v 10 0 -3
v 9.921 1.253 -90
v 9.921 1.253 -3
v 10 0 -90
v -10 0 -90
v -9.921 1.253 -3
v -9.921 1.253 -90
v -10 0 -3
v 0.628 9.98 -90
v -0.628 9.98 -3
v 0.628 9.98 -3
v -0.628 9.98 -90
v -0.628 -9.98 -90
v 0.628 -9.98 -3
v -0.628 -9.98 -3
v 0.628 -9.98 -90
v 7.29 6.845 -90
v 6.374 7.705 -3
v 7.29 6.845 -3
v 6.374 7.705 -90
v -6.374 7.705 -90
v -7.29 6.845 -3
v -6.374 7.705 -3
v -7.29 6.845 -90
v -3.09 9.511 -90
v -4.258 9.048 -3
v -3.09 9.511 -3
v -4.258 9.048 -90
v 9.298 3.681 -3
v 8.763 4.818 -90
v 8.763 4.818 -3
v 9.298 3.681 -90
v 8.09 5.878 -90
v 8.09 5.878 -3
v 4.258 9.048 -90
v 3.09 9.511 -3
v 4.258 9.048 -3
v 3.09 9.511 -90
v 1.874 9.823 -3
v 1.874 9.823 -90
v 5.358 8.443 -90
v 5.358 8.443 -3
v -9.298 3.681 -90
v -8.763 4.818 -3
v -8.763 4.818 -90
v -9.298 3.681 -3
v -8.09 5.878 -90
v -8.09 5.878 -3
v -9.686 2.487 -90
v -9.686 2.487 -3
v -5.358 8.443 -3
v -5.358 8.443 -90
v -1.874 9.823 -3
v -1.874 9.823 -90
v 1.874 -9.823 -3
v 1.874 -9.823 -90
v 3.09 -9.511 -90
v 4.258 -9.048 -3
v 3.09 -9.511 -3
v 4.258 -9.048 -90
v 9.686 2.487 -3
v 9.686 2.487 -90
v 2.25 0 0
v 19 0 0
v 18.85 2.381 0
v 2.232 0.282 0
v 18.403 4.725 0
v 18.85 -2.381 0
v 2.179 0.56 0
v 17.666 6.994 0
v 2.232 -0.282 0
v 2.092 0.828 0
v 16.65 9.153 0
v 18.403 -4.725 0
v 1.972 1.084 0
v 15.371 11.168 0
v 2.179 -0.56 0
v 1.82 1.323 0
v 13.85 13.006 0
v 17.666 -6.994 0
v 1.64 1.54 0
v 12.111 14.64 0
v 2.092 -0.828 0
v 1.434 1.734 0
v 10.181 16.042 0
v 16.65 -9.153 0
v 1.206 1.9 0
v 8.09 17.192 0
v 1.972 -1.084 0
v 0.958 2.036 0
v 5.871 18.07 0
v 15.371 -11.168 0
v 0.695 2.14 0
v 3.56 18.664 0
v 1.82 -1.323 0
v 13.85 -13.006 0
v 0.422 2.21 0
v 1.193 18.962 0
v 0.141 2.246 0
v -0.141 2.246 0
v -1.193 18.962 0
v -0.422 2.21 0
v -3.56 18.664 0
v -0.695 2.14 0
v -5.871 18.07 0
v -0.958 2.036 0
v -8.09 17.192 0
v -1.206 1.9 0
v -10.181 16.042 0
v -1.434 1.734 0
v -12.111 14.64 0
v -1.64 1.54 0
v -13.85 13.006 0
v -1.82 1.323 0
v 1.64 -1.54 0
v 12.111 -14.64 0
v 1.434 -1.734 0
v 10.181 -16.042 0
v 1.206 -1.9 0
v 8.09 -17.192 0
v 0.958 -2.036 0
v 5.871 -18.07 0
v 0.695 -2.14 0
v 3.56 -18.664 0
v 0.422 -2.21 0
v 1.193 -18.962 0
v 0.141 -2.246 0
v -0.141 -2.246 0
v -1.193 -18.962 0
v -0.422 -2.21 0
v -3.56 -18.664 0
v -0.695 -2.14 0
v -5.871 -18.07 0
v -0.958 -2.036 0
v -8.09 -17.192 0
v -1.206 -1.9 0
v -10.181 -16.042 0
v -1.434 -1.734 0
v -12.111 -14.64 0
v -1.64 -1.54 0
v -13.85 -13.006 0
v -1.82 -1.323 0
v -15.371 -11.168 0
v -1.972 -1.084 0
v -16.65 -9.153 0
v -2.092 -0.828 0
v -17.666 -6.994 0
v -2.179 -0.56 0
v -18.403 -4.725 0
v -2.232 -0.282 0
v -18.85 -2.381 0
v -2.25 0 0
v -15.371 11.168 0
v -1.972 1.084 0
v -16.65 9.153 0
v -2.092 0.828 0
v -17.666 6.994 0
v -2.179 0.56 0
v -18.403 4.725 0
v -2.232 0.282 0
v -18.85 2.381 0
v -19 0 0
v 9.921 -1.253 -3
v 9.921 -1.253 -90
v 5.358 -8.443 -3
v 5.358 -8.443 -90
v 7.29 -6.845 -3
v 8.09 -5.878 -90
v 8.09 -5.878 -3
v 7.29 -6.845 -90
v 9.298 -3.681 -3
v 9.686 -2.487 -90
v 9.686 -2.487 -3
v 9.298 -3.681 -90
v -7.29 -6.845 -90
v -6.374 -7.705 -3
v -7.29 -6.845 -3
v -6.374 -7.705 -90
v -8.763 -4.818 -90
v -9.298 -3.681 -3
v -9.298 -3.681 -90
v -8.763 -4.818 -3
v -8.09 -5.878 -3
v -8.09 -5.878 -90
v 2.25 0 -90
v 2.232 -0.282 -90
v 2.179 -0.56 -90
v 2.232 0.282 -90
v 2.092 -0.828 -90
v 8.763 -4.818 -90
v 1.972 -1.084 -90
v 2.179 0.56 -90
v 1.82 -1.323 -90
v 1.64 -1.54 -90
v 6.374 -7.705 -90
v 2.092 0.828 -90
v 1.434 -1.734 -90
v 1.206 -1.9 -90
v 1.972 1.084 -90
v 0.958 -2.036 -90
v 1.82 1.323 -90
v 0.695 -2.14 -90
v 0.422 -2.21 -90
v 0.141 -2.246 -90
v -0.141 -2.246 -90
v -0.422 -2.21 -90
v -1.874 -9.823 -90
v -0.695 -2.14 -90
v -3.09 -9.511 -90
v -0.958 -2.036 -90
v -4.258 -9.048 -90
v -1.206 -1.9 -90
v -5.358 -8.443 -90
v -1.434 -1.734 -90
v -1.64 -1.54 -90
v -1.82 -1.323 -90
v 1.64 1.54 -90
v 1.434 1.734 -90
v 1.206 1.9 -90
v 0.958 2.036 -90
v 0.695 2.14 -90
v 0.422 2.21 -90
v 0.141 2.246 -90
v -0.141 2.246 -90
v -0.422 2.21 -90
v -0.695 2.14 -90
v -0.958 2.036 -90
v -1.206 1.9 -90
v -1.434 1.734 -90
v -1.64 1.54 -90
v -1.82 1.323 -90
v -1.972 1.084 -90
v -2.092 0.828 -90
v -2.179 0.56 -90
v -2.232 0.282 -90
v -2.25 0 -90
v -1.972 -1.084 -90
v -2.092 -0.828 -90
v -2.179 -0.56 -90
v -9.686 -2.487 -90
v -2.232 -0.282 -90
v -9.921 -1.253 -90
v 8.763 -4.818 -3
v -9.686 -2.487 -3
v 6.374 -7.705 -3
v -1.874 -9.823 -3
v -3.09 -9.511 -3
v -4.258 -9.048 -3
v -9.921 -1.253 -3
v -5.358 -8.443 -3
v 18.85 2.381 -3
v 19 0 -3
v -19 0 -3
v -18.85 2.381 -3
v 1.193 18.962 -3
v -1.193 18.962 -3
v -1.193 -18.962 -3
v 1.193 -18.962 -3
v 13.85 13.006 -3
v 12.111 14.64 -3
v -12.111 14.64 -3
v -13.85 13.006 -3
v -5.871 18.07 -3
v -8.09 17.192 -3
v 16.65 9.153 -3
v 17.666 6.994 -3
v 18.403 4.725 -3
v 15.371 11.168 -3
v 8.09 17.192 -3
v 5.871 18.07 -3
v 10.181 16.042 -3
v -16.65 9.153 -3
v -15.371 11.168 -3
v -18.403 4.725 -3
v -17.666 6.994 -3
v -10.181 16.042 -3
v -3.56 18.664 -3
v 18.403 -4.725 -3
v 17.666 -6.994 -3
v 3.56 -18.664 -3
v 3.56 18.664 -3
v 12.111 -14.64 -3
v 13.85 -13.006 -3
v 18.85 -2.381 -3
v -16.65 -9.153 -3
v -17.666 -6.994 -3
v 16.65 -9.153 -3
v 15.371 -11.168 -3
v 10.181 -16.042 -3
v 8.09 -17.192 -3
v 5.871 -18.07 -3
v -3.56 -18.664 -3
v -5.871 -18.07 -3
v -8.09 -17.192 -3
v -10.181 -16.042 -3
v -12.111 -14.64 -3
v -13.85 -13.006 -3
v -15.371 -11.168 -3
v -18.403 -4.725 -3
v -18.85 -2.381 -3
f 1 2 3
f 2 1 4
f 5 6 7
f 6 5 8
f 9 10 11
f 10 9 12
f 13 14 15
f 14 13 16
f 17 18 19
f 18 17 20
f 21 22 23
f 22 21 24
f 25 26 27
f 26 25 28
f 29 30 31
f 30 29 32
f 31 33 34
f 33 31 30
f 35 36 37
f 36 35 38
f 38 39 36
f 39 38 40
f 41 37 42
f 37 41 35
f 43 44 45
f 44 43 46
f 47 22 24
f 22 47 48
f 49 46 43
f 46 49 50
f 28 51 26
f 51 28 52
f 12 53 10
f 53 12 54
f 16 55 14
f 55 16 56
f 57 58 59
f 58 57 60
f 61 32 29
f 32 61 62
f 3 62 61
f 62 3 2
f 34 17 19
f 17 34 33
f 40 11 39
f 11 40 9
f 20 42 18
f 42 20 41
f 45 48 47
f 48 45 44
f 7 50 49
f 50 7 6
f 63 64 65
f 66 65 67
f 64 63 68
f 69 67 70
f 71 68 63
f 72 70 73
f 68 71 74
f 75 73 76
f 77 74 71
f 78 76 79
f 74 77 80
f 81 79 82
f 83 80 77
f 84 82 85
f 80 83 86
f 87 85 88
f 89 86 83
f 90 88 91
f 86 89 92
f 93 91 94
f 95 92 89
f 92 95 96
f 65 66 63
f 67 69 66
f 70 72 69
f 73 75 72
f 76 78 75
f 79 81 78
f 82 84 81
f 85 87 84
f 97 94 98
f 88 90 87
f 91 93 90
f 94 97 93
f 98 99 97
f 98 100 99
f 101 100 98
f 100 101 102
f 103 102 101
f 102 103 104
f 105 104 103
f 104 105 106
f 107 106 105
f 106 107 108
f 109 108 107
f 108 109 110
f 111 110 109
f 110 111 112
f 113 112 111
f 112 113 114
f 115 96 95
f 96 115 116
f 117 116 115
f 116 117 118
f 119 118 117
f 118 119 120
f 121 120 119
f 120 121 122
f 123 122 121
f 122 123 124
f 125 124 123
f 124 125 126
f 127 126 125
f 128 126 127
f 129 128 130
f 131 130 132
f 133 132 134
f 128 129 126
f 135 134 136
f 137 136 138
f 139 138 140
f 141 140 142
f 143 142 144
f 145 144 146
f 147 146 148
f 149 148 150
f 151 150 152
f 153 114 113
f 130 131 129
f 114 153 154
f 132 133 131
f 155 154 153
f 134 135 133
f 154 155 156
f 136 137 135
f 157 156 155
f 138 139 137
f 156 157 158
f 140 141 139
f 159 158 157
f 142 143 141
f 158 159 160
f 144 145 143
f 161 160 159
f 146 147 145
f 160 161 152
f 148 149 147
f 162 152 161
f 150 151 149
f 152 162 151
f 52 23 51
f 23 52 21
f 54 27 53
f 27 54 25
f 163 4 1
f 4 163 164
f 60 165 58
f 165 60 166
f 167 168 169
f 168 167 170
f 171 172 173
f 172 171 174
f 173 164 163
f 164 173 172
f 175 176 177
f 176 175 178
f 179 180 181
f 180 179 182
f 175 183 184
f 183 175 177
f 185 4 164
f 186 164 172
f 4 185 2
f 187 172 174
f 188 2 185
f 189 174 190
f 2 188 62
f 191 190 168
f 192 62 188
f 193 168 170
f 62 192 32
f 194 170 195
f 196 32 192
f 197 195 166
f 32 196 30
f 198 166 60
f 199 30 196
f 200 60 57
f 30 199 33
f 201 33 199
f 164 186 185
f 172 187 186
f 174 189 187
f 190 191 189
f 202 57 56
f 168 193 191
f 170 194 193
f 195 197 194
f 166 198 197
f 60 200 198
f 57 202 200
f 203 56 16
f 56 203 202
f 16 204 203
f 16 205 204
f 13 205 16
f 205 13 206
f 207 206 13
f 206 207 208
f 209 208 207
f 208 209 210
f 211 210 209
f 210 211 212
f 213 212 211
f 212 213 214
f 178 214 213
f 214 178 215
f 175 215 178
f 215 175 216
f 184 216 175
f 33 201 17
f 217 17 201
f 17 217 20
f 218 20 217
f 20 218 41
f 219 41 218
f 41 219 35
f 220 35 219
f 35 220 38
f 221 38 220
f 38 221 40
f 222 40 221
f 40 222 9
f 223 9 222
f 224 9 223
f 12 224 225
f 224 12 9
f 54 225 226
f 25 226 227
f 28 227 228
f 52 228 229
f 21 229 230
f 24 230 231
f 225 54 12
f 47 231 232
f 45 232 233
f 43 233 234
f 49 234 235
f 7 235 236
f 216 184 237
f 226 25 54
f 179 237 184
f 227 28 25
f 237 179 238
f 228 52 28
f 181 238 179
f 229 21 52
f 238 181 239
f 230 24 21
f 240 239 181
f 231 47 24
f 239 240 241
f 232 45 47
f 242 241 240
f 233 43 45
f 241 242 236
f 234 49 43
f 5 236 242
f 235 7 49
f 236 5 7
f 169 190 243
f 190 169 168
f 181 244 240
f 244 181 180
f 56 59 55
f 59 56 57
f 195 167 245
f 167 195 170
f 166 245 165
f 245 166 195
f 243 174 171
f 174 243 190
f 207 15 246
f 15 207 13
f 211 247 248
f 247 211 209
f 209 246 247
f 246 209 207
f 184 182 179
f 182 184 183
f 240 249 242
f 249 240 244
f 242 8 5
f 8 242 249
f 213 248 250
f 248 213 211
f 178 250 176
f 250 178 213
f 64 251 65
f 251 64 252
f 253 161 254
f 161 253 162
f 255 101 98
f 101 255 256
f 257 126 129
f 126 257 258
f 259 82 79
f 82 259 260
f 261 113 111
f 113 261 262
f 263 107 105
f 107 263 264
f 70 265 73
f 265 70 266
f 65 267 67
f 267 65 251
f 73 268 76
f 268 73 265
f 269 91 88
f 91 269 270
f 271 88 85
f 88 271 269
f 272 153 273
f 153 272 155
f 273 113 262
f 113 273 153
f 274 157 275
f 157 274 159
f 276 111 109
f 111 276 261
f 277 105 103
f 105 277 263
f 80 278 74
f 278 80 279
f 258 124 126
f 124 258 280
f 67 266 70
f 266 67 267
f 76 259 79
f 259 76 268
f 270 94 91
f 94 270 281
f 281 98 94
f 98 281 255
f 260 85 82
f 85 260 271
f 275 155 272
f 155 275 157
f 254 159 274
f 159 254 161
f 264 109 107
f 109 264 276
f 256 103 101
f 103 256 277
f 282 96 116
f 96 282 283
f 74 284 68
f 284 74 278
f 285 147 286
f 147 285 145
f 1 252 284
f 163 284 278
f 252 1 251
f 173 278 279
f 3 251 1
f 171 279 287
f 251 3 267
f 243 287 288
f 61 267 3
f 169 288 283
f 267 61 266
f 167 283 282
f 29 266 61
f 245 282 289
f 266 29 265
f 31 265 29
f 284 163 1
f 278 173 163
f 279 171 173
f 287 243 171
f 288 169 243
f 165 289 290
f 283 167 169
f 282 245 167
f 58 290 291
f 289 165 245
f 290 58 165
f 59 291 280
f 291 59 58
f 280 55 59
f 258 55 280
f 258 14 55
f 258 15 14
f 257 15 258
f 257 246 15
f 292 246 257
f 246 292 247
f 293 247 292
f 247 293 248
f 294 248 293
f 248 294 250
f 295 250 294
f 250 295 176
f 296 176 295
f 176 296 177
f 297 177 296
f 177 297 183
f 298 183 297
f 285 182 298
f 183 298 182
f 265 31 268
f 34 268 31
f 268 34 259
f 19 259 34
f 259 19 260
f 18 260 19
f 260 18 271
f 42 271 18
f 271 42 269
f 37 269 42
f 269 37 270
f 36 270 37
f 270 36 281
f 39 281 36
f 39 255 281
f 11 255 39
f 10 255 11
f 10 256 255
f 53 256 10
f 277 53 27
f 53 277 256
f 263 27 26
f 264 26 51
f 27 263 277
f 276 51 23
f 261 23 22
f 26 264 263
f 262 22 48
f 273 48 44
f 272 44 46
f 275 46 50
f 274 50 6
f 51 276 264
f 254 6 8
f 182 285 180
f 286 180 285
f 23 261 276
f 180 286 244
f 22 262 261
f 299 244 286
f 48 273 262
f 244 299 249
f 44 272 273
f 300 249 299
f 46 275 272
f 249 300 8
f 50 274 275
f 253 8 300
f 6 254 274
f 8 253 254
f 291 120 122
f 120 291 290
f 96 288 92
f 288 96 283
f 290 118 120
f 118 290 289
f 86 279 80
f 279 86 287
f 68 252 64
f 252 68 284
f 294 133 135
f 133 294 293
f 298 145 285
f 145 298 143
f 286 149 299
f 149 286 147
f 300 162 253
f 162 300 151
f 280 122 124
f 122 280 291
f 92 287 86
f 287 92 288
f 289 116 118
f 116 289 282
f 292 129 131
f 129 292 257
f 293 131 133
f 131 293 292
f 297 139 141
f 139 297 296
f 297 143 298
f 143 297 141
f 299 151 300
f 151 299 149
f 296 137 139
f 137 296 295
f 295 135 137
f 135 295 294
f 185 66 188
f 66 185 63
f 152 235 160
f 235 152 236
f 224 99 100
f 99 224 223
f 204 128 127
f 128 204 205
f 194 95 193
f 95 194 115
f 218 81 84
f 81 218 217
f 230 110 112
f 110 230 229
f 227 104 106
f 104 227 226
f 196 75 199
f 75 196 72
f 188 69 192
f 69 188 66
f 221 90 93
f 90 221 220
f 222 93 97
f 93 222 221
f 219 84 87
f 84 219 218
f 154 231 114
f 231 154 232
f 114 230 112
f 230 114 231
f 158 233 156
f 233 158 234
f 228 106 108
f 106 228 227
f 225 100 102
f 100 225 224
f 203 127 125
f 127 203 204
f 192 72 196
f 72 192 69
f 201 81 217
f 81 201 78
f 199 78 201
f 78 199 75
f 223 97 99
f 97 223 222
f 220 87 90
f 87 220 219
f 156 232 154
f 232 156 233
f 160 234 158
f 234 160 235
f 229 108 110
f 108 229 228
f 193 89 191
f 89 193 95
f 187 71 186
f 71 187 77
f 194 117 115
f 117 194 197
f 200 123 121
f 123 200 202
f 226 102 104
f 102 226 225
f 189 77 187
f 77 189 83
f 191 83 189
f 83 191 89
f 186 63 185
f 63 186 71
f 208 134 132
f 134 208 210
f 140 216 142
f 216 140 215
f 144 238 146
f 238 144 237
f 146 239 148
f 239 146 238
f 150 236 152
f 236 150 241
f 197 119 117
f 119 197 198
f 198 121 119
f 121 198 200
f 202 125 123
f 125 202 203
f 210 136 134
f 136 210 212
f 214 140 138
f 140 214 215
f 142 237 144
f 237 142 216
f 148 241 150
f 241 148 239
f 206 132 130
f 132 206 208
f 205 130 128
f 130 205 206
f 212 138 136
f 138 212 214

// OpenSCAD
$fn = 50;


difference() {
	union() {
		translate(v = [0, 0, -90.0000000000]) {
			cylinder(h = 90, r = 10.0000000000);
		}
		translate(v = [0, 0, -3.0000000000]) {
			cylinder(h = 3, r = 19.0000000000);
		}
	}
	union() {
		#translate(v = [0, 0, -90]) {
			cylinder(h = 90, r = 2.2500000000);
		}
	}
}
